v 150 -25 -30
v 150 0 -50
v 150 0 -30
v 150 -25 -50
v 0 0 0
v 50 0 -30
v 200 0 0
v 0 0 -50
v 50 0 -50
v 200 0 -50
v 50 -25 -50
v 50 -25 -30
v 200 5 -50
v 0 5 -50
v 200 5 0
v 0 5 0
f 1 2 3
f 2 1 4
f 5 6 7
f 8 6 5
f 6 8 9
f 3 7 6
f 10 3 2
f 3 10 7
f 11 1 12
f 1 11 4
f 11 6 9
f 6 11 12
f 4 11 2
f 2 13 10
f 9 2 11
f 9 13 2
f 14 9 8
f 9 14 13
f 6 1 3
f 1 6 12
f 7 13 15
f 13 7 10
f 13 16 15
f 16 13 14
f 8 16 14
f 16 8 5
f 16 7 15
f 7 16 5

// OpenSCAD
// Constants for dimensions (all in mm)
WIDTH_MM = 200; // 20 cm
HEIGHT_MM = 10; // 5 cm
DEPTH_MM = 50; // Assumed depth for bumper stability
CENTER_POINT_OFFSET_MM = 25; // Slight point at center
ANGLE_DEG = 10; // Slight angle for Formula 1 wing-like slope
BACKPLATE_THICKNESS_MM=5;

// Calculate height increase due to angle
ANGLE_HEIGHT_MM = DEPTH_MM * tan(ANGLE_DEG);

CLAMP_DEPTH_MM=25;
CLAMP_HIEGHT_MM=20;
CLAMP_WIDTH_MM=100;

// Define points for polyhedron
// Base: 4 points forming a rectangle
// Top: 2 points for angled top with central point
points = [
    // Base (z=0)
    [0, 0, 0],           // 0: Front-left corner
    [WIDTH_MM, 0, 0],      // 1: Front-right corner
    [WIDTH_MM, DEPTH_MM, 0],  // 2: Back-right corner
    [0, DEPTH_MM, 0],      // 3: Back-left corner
    // Top (z=HEIGHT_MM + angle height)
    [WIDTH_MM / 2, 0, HEIGHT_MM],                  // 4: Front center (lower)
    [WIDTH_MM / 2, DEPTH_MM, HEIGHT_MM + ANGLE_HEIGHT_MM + CENTER_POINT_OFFSET_MM] // 5: Back center (higher with point)
];

// Define faces for polyhedron
faces = [
    [0, 1, 2, 3], // Bottom face
    [0, 4, 5, 3], // Left side
    [1, 2, 5, 4], // Right side
    [0, 1, 4],   // Front face (split into two triangles)
    [1, 2, 4, 5], // Back face
    [3, 2, 5],   // Top face (triangle 1)
    [0, 3, 5, 4]    // Top face (triangle 2)
];


// Create the bumper
rotate([-90, 0, 0])

    union(){
        // Create the bumper
        translate([WIDTH_MM/4, DEPTH_MM - CLAMP_HIEGHT_MM, -CLAMP_DEPTH_MM])
        cube(size=[CLAMP_WIDTH_MM,CLAMP_HIEGHT_MM, CLAMP_DEPTH_MM]);
        
    cube(size=[WIDTH_MM, DEPTH_MM, BACKPLATE_THICKNESS_MM]);
    translate([0,0,BACKPLATE_THICKNESS_MM])
        polyhedron(points, faces);
    }
